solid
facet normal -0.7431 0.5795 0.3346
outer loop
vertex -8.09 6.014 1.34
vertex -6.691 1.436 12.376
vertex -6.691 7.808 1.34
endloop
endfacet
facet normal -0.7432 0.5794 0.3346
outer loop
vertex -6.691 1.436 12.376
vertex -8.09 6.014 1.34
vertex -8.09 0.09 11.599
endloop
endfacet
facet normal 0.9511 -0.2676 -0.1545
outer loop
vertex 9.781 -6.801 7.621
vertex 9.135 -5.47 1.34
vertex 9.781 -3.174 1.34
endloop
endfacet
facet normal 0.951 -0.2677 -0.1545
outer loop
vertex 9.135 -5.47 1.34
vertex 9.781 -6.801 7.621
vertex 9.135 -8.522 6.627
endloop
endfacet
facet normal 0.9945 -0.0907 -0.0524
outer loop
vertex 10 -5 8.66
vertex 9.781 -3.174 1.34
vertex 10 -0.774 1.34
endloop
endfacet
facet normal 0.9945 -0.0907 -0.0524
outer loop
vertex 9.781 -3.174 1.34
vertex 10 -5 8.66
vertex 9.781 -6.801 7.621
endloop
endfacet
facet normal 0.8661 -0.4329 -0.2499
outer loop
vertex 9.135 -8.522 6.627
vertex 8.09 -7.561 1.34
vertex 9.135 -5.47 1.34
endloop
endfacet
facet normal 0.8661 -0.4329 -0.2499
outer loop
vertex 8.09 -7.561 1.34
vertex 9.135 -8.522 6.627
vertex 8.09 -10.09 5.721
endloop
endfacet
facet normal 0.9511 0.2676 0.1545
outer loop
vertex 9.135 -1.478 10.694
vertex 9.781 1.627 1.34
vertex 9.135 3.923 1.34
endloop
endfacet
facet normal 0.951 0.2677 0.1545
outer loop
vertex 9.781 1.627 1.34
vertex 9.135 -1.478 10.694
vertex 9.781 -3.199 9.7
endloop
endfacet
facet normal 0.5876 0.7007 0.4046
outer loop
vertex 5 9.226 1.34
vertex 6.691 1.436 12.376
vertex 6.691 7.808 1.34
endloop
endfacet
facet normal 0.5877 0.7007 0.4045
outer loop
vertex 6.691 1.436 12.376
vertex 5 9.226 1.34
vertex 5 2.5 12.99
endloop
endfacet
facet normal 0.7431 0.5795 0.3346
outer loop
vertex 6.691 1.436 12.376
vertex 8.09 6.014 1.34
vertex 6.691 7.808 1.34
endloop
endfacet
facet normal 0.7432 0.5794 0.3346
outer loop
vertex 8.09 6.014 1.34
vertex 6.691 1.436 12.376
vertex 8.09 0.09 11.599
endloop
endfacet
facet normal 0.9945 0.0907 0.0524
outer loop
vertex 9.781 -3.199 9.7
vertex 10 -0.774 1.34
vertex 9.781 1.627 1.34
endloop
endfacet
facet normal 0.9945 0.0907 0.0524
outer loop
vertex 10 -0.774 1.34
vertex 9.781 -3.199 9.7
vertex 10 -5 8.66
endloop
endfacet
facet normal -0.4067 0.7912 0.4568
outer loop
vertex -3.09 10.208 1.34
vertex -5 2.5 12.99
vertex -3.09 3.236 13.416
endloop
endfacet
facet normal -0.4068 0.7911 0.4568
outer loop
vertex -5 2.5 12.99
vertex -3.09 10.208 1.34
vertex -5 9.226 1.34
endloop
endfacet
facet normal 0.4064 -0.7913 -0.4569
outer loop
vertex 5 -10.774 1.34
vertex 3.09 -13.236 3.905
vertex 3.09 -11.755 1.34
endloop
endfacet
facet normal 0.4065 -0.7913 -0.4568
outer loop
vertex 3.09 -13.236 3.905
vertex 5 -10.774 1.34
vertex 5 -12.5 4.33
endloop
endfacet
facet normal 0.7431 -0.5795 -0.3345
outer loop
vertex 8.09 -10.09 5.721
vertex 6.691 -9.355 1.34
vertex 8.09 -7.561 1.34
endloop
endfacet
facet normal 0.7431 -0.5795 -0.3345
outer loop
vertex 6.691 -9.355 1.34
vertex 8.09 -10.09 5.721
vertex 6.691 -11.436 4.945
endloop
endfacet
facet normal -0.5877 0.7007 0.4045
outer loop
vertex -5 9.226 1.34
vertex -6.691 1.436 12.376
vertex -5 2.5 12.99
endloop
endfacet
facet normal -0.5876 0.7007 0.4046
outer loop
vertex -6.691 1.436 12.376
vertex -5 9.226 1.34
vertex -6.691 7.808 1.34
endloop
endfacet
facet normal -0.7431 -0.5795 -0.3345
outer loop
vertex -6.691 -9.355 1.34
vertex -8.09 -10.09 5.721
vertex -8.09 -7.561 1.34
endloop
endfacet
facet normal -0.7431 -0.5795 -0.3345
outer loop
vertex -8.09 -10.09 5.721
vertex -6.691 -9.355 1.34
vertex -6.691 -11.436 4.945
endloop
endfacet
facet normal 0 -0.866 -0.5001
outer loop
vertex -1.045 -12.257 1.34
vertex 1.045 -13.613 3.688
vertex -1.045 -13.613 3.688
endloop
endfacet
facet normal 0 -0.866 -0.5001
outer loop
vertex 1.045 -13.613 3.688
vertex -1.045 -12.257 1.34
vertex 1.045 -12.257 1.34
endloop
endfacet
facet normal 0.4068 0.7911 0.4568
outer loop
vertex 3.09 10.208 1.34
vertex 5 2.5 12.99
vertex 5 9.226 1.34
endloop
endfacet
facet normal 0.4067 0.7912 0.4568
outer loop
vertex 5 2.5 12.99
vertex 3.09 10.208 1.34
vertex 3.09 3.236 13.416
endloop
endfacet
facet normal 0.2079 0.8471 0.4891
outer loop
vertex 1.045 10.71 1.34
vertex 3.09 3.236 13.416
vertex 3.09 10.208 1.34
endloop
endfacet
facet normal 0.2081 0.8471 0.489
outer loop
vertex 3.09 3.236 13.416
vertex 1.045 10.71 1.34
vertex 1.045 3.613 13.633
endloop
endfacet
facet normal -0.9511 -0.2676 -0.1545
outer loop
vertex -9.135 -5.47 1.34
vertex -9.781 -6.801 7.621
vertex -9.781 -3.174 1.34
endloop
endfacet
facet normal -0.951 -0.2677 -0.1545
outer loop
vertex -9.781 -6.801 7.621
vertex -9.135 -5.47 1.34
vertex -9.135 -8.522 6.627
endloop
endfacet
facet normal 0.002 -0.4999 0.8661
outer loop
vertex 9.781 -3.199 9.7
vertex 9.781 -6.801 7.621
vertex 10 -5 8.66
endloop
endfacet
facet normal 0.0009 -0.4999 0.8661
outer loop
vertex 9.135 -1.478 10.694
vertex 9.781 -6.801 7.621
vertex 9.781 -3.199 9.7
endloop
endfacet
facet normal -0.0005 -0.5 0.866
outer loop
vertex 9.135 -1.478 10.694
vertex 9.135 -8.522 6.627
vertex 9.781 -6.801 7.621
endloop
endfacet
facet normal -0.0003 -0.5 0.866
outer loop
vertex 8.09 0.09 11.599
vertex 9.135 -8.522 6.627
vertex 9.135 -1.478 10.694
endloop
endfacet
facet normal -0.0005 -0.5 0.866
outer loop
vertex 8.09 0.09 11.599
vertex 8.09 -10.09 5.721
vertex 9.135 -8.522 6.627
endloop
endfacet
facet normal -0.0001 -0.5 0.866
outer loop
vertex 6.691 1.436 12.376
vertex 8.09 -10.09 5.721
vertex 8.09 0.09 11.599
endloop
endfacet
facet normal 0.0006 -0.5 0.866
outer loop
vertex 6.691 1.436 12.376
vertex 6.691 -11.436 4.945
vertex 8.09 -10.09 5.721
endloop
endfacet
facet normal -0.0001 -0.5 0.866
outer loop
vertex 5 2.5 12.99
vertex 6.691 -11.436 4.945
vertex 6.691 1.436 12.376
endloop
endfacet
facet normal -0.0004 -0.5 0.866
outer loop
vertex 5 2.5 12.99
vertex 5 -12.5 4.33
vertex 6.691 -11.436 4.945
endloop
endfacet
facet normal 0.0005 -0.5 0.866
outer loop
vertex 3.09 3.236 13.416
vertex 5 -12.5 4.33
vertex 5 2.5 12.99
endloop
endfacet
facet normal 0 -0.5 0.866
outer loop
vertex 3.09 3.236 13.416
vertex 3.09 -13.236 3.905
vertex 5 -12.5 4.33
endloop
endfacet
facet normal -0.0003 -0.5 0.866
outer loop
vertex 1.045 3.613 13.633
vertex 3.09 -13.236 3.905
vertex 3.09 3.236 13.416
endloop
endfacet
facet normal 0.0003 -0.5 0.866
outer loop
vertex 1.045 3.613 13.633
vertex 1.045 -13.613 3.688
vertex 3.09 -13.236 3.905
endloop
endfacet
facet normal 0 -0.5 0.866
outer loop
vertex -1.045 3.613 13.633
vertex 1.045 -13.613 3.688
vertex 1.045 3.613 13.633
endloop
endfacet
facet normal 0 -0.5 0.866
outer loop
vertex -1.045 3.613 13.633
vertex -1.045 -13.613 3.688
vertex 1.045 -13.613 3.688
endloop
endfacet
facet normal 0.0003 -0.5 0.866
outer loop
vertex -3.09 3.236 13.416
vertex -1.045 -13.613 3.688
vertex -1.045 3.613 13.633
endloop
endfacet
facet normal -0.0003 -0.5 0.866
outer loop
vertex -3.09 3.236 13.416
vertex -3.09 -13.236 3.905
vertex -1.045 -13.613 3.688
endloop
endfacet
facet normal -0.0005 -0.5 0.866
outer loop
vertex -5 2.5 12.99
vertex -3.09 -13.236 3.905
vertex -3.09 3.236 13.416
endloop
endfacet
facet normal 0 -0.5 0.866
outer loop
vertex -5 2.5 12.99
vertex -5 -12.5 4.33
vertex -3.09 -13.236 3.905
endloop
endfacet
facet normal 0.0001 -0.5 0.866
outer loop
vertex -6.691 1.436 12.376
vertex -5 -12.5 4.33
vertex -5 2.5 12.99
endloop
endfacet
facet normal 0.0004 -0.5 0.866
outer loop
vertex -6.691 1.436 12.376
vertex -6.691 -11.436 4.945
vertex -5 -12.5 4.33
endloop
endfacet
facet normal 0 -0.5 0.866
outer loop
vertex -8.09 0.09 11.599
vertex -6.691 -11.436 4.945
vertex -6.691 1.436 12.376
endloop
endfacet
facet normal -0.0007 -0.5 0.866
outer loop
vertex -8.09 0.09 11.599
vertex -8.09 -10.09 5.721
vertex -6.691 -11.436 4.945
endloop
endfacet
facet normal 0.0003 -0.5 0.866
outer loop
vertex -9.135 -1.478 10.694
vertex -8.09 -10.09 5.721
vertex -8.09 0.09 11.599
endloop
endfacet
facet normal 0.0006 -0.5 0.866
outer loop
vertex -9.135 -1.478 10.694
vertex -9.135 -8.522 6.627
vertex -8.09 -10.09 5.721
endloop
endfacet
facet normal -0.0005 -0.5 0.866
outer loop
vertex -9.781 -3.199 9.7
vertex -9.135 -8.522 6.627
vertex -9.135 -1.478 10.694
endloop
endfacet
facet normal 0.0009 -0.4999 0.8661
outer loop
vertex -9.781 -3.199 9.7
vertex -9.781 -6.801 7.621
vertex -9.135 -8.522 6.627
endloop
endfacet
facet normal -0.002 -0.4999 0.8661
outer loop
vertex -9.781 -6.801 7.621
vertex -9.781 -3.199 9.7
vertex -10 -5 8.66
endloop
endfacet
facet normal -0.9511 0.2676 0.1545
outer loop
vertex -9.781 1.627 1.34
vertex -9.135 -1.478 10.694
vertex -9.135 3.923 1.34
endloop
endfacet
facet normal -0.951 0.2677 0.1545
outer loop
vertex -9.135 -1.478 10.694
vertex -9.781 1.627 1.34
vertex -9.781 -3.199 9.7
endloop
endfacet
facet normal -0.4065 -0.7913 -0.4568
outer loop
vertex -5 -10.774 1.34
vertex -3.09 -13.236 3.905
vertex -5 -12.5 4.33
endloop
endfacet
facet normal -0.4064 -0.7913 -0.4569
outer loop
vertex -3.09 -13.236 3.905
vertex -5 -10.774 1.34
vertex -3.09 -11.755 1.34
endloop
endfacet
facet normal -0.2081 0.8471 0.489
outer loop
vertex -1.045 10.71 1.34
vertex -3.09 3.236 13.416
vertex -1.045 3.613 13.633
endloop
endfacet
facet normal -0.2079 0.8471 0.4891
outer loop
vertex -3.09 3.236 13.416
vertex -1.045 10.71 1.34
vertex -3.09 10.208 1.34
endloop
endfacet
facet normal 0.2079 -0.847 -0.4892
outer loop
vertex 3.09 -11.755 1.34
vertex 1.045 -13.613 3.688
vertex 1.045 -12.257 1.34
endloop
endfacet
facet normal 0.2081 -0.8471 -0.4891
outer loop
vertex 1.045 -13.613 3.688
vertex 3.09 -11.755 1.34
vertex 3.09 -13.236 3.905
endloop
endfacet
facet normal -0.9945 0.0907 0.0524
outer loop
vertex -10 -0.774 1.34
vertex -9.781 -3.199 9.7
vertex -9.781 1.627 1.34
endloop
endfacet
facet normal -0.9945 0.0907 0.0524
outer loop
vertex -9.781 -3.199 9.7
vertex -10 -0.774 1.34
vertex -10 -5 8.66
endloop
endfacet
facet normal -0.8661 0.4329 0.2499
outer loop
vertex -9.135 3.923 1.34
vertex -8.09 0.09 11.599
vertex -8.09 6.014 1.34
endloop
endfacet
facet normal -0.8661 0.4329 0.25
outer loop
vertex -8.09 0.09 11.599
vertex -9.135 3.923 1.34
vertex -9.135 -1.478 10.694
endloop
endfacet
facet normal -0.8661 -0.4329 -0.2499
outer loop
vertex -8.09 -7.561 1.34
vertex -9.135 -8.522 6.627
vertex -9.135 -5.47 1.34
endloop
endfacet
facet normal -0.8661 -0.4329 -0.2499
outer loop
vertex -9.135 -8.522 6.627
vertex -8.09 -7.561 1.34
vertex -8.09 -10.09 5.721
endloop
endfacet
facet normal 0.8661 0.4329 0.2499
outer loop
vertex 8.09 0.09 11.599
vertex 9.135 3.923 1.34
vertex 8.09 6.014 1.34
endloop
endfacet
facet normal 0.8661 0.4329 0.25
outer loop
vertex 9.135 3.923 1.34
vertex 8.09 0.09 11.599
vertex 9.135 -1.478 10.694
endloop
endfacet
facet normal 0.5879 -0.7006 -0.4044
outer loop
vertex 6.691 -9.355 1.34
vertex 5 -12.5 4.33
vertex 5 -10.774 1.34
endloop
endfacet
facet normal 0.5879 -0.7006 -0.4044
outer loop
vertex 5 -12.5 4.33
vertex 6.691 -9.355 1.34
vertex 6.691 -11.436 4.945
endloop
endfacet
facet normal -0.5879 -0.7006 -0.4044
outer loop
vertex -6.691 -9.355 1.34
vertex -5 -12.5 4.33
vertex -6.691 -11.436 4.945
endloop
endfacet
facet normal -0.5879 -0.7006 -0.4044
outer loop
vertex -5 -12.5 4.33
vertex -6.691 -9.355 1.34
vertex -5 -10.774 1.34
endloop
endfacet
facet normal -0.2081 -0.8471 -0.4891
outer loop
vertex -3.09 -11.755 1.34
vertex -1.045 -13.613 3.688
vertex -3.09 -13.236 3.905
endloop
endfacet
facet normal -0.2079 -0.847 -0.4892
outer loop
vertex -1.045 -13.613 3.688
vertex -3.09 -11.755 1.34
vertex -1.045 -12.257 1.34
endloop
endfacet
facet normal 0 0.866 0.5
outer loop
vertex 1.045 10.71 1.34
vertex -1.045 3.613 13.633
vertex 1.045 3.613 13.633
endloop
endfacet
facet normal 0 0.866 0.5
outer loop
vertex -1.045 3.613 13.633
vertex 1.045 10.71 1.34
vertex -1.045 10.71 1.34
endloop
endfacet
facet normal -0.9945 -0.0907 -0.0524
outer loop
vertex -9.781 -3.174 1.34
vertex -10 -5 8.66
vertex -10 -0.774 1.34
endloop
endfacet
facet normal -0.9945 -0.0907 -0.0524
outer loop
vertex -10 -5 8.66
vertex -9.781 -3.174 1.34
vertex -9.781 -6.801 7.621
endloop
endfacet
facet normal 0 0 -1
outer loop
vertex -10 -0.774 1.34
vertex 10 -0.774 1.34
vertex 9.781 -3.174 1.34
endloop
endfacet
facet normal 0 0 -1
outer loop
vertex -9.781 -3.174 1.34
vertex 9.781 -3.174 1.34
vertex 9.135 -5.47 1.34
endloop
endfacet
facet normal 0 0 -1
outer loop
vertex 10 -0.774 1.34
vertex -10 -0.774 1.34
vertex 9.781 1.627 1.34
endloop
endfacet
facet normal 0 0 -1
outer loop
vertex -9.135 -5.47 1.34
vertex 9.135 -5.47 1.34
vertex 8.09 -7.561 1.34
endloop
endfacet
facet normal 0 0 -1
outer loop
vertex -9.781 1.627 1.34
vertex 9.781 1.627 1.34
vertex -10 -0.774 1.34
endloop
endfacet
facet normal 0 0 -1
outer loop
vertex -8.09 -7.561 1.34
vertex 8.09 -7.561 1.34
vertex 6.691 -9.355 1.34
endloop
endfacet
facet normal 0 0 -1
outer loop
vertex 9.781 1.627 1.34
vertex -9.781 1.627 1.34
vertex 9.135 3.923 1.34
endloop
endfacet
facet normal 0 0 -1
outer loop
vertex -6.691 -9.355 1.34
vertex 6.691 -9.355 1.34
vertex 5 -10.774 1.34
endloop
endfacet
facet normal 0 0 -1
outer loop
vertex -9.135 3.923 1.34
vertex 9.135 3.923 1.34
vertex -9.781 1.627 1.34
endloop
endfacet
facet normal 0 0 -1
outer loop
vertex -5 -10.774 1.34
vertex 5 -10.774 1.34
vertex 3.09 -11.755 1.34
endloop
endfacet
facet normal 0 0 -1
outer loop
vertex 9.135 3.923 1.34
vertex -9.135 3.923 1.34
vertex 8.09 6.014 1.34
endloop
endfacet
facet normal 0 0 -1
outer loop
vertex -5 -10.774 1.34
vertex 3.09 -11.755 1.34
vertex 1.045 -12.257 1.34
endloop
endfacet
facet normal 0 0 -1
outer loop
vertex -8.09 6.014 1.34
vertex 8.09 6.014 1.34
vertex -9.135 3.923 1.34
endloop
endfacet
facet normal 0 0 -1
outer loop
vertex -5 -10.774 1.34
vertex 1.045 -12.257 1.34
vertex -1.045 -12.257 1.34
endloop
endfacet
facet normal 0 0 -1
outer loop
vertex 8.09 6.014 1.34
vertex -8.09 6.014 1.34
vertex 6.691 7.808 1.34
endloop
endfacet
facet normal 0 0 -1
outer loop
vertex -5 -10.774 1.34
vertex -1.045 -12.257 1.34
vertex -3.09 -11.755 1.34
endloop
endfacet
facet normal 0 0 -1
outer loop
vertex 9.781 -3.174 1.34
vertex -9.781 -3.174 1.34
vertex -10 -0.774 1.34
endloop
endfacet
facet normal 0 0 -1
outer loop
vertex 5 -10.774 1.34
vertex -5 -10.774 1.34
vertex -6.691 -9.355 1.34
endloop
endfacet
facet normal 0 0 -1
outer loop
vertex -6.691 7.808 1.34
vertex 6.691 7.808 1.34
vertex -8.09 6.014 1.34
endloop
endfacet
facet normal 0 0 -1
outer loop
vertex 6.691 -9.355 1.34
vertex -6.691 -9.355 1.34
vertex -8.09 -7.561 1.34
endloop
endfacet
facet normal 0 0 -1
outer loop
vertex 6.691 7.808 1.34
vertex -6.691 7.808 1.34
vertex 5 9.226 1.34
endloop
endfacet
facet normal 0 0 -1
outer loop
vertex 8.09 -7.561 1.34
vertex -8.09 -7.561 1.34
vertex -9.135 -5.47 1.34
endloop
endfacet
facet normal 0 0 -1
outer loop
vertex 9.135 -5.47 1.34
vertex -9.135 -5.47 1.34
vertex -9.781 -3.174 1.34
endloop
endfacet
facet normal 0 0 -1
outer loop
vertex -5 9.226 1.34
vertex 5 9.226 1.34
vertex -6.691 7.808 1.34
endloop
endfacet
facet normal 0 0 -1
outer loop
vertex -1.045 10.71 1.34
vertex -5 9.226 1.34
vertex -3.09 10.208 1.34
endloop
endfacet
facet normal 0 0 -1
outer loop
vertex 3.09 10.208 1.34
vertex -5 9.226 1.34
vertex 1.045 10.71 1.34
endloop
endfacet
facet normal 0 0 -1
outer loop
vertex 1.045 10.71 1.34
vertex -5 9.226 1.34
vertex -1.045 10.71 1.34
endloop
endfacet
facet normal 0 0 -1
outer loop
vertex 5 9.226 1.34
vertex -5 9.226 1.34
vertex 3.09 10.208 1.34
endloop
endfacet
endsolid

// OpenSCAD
rotate([-150,0,0])
difference() {
    cylinder(r=10,h=20, center=true);
    translate([0,0,10])
    rotate([60,0,0])
    cube([20,20,40], center=true);
}
